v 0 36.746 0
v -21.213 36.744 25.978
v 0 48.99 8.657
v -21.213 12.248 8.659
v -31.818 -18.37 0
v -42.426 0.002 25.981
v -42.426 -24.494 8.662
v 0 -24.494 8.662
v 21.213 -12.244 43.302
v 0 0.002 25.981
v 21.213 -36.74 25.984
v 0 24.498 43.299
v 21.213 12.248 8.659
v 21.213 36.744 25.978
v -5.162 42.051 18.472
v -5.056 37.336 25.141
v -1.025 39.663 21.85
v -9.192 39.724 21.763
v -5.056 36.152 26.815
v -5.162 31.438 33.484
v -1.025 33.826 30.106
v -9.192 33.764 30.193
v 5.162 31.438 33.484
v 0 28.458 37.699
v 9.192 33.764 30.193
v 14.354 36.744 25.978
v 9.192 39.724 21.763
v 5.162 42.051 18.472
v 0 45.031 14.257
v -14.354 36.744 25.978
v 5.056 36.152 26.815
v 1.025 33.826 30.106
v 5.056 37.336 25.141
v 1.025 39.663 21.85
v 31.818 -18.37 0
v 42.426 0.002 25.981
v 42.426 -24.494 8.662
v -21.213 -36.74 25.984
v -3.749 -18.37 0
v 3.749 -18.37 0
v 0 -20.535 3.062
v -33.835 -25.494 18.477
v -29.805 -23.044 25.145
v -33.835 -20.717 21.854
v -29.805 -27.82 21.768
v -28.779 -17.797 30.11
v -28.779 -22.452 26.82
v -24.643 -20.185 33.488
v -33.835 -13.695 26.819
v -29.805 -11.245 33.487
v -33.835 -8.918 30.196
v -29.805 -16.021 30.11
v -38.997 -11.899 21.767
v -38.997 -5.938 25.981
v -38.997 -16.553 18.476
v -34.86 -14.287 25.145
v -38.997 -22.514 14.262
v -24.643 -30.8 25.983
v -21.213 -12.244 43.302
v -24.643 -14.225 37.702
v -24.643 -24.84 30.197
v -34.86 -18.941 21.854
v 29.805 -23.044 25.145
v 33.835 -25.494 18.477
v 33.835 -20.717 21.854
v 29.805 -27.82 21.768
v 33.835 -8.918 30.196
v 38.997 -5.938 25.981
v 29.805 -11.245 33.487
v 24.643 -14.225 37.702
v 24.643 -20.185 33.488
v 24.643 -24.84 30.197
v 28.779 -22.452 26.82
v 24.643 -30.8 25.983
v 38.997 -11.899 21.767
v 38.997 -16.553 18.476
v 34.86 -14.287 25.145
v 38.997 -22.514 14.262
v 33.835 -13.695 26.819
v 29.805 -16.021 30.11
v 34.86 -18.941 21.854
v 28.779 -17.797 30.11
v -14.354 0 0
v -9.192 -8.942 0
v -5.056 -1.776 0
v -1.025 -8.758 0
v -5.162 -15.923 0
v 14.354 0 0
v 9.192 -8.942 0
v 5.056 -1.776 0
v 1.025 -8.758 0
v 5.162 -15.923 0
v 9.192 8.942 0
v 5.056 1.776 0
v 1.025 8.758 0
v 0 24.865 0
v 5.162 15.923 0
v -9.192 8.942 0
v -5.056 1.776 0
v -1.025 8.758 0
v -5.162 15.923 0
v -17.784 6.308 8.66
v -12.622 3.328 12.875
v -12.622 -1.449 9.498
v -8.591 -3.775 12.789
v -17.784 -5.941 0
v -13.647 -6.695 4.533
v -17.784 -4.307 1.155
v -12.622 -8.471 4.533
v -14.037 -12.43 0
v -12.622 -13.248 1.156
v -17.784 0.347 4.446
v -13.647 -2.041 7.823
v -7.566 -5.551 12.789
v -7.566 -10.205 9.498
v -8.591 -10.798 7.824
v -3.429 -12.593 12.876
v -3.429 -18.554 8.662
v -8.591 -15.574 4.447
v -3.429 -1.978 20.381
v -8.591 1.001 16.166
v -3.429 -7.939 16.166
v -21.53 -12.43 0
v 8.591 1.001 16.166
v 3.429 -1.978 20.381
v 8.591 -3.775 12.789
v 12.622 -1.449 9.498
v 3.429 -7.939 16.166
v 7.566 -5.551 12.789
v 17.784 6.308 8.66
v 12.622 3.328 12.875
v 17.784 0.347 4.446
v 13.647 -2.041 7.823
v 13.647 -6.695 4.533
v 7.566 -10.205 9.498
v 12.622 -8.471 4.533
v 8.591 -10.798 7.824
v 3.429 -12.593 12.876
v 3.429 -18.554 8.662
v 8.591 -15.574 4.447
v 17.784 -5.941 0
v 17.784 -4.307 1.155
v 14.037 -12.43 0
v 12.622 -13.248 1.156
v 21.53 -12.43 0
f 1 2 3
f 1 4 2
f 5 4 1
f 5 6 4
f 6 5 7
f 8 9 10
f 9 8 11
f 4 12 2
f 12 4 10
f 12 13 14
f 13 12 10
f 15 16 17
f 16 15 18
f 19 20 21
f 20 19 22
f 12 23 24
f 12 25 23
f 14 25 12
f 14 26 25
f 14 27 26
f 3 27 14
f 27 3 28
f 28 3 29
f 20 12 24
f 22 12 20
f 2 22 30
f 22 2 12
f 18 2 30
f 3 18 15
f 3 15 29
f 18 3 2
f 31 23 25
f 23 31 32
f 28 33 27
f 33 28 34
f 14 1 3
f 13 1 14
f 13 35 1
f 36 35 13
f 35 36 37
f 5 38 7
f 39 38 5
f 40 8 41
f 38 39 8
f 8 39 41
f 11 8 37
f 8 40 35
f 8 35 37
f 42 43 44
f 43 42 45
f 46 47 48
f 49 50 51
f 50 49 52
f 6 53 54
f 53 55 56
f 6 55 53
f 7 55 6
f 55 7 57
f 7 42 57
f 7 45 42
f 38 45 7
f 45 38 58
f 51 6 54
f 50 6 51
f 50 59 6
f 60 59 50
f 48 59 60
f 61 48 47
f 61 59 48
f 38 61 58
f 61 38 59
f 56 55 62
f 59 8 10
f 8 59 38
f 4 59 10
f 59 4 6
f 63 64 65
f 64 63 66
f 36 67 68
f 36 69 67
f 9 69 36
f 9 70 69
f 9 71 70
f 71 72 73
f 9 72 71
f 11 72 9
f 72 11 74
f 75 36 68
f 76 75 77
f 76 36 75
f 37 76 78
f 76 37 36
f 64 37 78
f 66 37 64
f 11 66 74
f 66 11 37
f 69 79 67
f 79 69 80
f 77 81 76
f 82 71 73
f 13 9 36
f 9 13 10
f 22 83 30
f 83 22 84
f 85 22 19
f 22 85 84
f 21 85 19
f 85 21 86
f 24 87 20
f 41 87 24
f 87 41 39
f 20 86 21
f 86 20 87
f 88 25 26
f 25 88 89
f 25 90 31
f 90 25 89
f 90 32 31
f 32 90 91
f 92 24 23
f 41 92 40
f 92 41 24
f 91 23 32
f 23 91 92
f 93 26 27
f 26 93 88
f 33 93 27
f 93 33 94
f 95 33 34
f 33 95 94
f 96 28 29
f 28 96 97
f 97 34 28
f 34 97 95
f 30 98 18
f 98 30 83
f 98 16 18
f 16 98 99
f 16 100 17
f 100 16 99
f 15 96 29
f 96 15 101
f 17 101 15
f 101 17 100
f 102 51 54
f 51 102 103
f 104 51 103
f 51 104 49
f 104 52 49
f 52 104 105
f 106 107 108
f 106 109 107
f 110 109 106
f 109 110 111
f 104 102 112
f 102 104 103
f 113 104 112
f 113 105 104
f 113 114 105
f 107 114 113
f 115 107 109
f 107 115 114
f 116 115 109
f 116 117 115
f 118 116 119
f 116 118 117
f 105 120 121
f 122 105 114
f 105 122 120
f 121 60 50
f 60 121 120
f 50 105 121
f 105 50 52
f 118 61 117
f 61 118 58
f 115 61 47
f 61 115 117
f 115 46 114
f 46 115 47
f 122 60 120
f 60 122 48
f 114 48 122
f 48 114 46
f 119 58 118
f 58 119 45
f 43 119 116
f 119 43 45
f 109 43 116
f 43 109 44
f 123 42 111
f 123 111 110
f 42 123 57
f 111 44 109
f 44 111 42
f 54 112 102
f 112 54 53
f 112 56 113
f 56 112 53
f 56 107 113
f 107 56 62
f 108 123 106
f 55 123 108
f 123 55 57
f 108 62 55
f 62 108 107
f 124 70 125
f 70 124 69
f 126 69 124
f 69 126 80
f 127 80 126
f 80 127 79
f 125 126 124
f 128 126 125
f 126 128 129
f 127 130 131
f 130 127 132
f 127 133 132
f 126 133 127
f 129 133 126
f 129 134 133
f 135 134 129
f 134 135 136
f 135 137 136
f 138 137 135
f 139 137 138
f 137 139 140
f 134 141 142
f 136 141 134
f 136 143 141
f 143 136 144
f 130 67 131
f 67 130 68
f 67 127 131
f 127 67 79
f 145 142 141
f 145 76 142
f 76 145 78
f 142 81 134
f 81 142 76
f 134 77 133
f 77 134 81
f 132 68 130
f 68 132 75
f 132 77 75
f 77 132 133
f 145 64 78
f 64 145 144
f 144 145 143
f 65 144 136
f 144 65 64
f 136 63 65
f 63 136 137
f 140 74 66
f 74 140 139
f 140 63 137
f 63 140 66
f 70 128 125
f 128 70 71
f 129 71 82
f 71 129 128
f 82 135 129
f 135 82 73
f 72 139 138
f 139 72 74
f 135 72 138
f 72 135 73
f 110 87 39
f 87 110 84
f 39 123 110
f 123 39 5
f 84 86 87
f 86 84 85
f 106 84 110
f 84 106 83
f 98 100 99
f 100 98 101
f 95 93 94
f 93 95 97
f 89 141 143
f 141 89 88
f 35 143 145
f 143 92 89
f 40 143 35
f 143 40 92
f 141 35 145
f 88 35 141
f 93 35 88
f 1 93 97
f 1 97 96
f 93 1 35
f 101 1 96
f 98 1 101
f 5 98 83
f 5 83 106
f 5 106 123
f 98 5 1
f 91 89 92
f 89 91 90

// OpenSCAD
// Generated by SolidPython 1.1.3 on 2023-12-28 21:47:06


difference() {
	rotate(a = 35.2600000000, v = [1, 0, 0]) {
		rotate(a = -45, v = [0, 1, 0]) {
			difference() {
				union() {
					translate(v = [30.0000000000, 0, 0]) {
						cube(center = true, size = [30.0000000000, 30.0000000000, 30.0000000000]);
					}
					cube(center = true, size = [30.0000000000, 30.0000000000, 30.0000000000]);
					union() {
						translate(v = [0, 30.0000000000, 0]) {
							cube(center = true, size = [30.0000000000, 30.0000000000, 30.0000000000]);
						}
						cube(center = true, size = [30.0000000000, 30.0000000000, 30.0000000000]);
					}
					union() {
						translate(v = [0, 0, 30.0000000000]) {
							cube(center = true, size = [30.0000000000, 30.0000000000, 30.0000000000]);
						}
						cube(center = true, size = [30.0000000000, 30.0000000000, 30.0000000000]);
					}
				}
				union() {
					translate(v = [0, 0, 15]) {
						union() {
							polyhedron(convexity = 10, faces = [[0, 1, 5], [1, 6, 5], [1, 2, 6], [2, 7, 6], [2, 3, 7], [3, 8, 7], [3, 4, 8], [4, 9, 8], [4, 0, 9], [0, 5, 9], [4, 3, 2, 1, 0], [5, 6, 7, 8, 9]], points = [[-10.1500000000, 10.1500000000, 0.0000000000], [-10.1500000000, 2.8500000000, 0.0000000000], [-4.3000000000, 2.8500000000, 0.0000000000], [-4.3000000000, 0.0000000000, 0.0000000000], [0.0000000000, 0.0000000000, 0.0000000000], [-10.1500000000, 10.1500000000, 200.0000000000], [-10.1500000000, 2.8500000000, 200.0000000000], [-4.3000000000, 2.8500000000, 200.0000000000], [-4.3000000000, 0.0000000000, 200.0000000000], [0.0000000000, 0.0000000000, 200.0000000000]]);
							mirror(v = [0, 1]) {
								polyhedron(convexity = 10, faces = [[0, 1, 5], [1, 6, 5], [1, 2, 6], [2, 7, 6], [2, 3, 7], [3, 8, 7], [3, 4, 8], [4, 9, 8], [4, 0, 9], [0, 5, 9], [4, 3, 2, 1, 0], [5, 6, 7, 8, 9]], points = [[-10.1500000000, 10.1500000000, 0.0000000000], [-10.1500000000, 2.8500000000, 0.0000000000], [-4.3000000000, 2.8500000000, 0.0000000000], [-4.3000000000, 0.0000000000, 0.0000000000], [0.0000000000, 0.0000000000, 0.0000000000], [-10.1500000000, 10.1500000000, 200.0000000000], [-10.1500000000, 2.8500000000, 200.0000000000], [-4.3000000000, 2.8500000000, 200.0000000000], [-4.3000000000, 0.0000000000, 200.0000000000], [0.0000000000, 0.0000000000, 200.0000000000]]);
							}
							mirror(v = [1, 1]) {
								union() {
									polyhedron(convexity = 10, faces = [[0, 1, 5], [1, 6, 5], [1, 2, 6], [2, 7, 6], [2, 3, 7], [3, 8, 7], [3, 4, 8], [4, 9, 8], [4, 0, 9], [0, 5, 9], [4, 3, 2, 1, 0], [5, 6, 7, 8, 9]], points = [[-10.1500000000, 10.1500000000, 0.0000000000], [-10.1500000000, 2.8500000000, 0.0000000000], [-4.3000000000, 2.8500000000, 0.0000000000], [-4.3000000000, 0.0000000000, 0.0000000000], [0.0000000000, 0.0000000000, 0.0000000000], [-10.1500000000, 10.1500000000, 200.0000000000], [-10.1500000000, 2.8500000000, 200.0000000000], [-4.3000000000, 2.8500000000, 200.0000000000], [-4.3000000000, 0.0000000000, 200.0000000000], [0.0000000000, 0.0000000000, 200.0000000000]]);
									mirror(v = [0, 1]) {
										polyhedron(convexity = 10, faces = [[0, 1, 5], [1, 6, 5], [1, 2, 6], [2, 7, 6], [2, 3, 7], [3, 8, 7], [3, 4, 8], [4, 9, 8], [4, 0, 9], [0, 5, 9], [4, 3, 2, 1, 0], [5, 6, 7, 8, 9]], points = [[-10.1500000000, 10.1500000000, 0.0000000000], [-10.1500000000, 2.8500000000, 0.0000000000], [-4.3000000000, 2.8500000000, 0.0000000000], [-4.3000000000, 0.0000000000, 0.0000000000], [0.0000000000, 0.0000000000, 0.0000000000], [-10.1500000000, 10.1500000000, 200.0000000000], [-10.1500000000, 2.8500000000, 200.0000000000], [-4.3000000000, 2.8500000000, 200.0000000000], [-4.3000000000, 0.0000000000, 200.0000000000], [0.0000000000, 0.0000000000, 200.0000000000]]);
									}
								}
							}
							mirror(v = [1, -1]) {
								union() {
									polyhedron(convexity = 10, faces = [[0, 1, 5], [1, 6, 5], [1, 2, 6], [2, 7, 6], [2, 3, 7], [3, 8, 7], [3, 4, 8], [4, 9, 8], [4, 0, 9], [0, 5, 9], [4, 3, 2, 1, 0], [5, 6, 7, 8, 9]], points = [[-10.1500000000, 10.1500000000, 0.0000000000], [-10.1500000000, 2.8500000000, 0.0000000000], [-4.3000000000, 2.8500000000, 0.0000000000], [-4.3000000000, 0.0000000000, 0.0000000000], [0.0000000000, 0.0000000000, 0.0000000000], [-10.1500000000, 10.1500000000, 200.0000000000], [-10.1500000000, 2.8500000000, 200.0000000000], [-4.3000000000, 2.8500000000, 200.0000000000], [-4.3000000000, 0.0000000000, 200.0000000000], [0.0000000000, 0.0000000000, 200.0000000000]]);
									mirror(v = [0, 1]) {
										polyhedron(convexity = 10, faces = [[0, 1, 5], [1, 6, 5], [1, 2, 6], [2, 7, 6], [2, 3, 7], [3, 8, 7], [3, 4, 8], [4, 9, 8], [4, 0, 9], [0, 5, 9], [4, 3, 2, 1, 0], [5, 6, 7, 8, 9]], points = [[-10.1500000000, 10.1500000000, 0.0000000000], [-10.1500000000, 2.8500000000, 0.0000000000], [-4.3000000000, 2.8500000000, 0.0000000000], [-4.3000000000, 0.0000000000, 0.0000000000], [0.0000000000, 0.0000000000, 0.0000000000], [-10.1500000000, 10.1500000000, 200.0000000000], [-10.1500000000, 2.8500000000, 200.0000000000], [-4.3000000000, 2.8500000000, 200.0000000000], [-4.3000000000, 0.0000000000, 200.0000000000], [0.0000000000, 0.0000000000, 200.0000000000]]);
									}
									mirror(v = [1, 1]) {
										union() {
											polyhedron(convexity = 10, faces = [[0, 1, 5], [1, 6, 5], [1, 2, 6], [2, 7, 6], [2, 3, 7], [3, 8, 7], [3, 4, 8], [4, 9, 8], [4, 0, 9], [0, 5, 9], [4, 3, 2, 1, 0], [5, 6, 7, 8, 9]], points = [[-10.1500000000, 10.1500000000, 0.0000000000], [-10.1500000000, 2.8500000000, 0.0000000000], [-4.3000000000, 2.8500000000, 0.0000000000], [-4.3000000000, 0.0000000000, 0.0000000000], [0.0000000000, 0.0000000000, 0.0000000000], [-10.1500000000, 10.1500000000, 200.0000000000], [-10.1500000000, 2.8500000000, 200.0000000000], [-4.3000000000, 2.8500000000, 200.0000000000], [-4.3000000000, 0.0000000000, 200.0000000000], [0.0000000000, 0.0000000000, 200.0000000000]]);
											mirror(v = [0, 1]) {
												polyhedron(convexity = 10, faces = [[0, 1, 5], [1, 6, 5], [1, 2, 6], [2, 7, 6], [2, 3, 7], [3, 8, 7], [3, 4, 8], [4, 9, 8], [4, 0, 9], [0, 5, 9], [4, 3, 2, 1, 0], [5, 6, 7, 8, 9]], points = [[-10.1500000000, 10.1500000000, 0.0000000000], [-10.1500000000, 2.8500000000, 0.0000000000], [-4.3000000000, 2.8500000000, 0.0000000000], [-4.3000000000, 0.0000000000, 0.0000000000], [0.0000000000, 0.0000000000, 0.0000000000], [-10.1500000000, 10.1500000000, 200.0000000000], [-10.1500000000, 2.8500000000, 200.0000000000], [-4.3000000000, 2.8500000000, 200.0000000000], [-4.3000000000, 0.0000000000, 200.0000000000], [0.0000000000, 0.0000000000, 200.0000000000]]);
											}
										}
									}
								}
							}
						}
					}
					translate(v = [15, 0, 0]) {
						rotate(a = 90, v = [0, 1, 0]) {
							union() {
								polyhedron(convexity = 10, faces = [[0, 1, 5], [1, 6, 5], [1, 2, 6], [2, 7, 6], [2, 3, 7], [3, 8, 7], [3, 4, 8], [4, 9, 8], [4, 0, 9], [0, 5, 9], [4, 3, 2, 1, 0], [5, 6, 7, 8, 9]], points = [[-10.1500000000, 10.1500000000, 0.0000000000], [-10.1500000000, 2.8500000000, 0.0000000000], [-4.3000000000, 2.8500000000, 0.0000000000], [-4.3000000000, 0.0000000000, 0.0000000000], [0.0000000000, 0.0000000000, 0.0000000000], [-10.1500000000, 10.1500000000, 200.0000000000], [-10.1500000000, 2.8500000000, 200.0000000000], [-4.3000000000, 2.8500000000, 200.0000000000], [-4.3000000000, 0.0000000000, 200.0000000000], [0.0000000000, 0.0000000000, 200.0000000000]]);
								mirror(v = [0, 1]) {
									polyhedron(convexity = 10, faces = [[0, 1, 5], [1, 6, 5], [1, 2, 6], [2, 7, 6], [2, 3, 7], [3, 8, 7], [3, 4, 8], [4, 9, 8], [4, 0, 9], [0, 5, 9], [4, 3, 2, 1, 0], [5, 6, 7, 8, 9]], points = [[-10.1500000000, 10.1500000000, 0.0000000000], [-10.1500000000, 2.8500000000, 0.0000000000], [-4.3000000000, 2.8500000000, 0.0000000000], [-4.3000000000, 0.0000000000, 0.0000000000], [0.0000000000, 0.0000000000, 0.0000000000], [-10.1500000000, 10.1500000000, 200.0000000000], [-10.1500000000, 2.8500000000, 200.0000000000], [-4.3000000000, 2.8500000000, 200.0000000000], [-4.3000000000, 0.0000000000, 200.0000000000], [0.0000000000, 0.0000000000, 200.0000000000]]);
								}
								mirror(v = [1, 1]) {
									union() {
										polyhedron(convexity = 10, faces = [[0, 1, 5], [1, 6, 5], [1, 2, 6], [2, 7, 6], [2, 3, 7], [3, 8, 7], [3, 4, 8], [4, 9, 8], [4, 0, 9], [0, 5, 9], [4, 3, 2, 1, 0], [5, 6, 7, 8, 9]], points = [[-10.1500000000, 10.1500000000, 0.0000000000], [-10.1500000000, 2.8500000000, 0.0000000000], [-4.3000000000, 2.8500000000, 0.0000000000], [-4.3000000000, 0.0000000000, 0.0000000000], [0.0000000000, 0.0000000000, 0.0000000000], [-10.1500000000, 10.1500000000, 200.0000000000], [-10.1500000000, 2.8500000000, 200.0000000000], [-4.3000000000, 2.8500000000, 200.0000000000], [-4.3000000000, 0.0000000000, 200.0000000000], [0.0000000000, 0.0000000000, 200.0000000000]]);
										mirror(v = [0, 1]) {
											polyhedron(convexity = 10, faces = [[0, 1, 5], [1, 6, 5], [1, 2, 6], [2, 7, 6], [2, 3, 7], [3, 8, 7], [3, 4, 8], [4, 9, 8], [4, 0, 9], [0, 5, 9], [4, 3, 2, 1, 0], [5, 6, 7, 8, 9]], points = [[-10.1500000000, 10.1500000000, 0.0000000000], [-10.1500000000, 2.8500000000, 0.0000000000], [-4.3000000000, 2.8500000000, 0.0000000000], [-4.3000000000, 0.0000000000, 0.0000000000], [0.0000000000, 0.0000000000, 0.0000000000], [-10.1500000000, 10.1500000000, 200.0000000000], [-10.1500000000, 2.8500000000, 200.0000000000], [-4.3000000000, 2.8500000000, 200.0000000000], [-4.3000000000, 0.0000000000, 200.0000000000], [0.0000000000, 0.0000000000, 200.0000000000]]);
										}
									}
								}
								mirror(v = [1, -1]) {
									union() {
										polyhedron(convexity = 10, faces = [[0, 1, 5], [1, 6, 5], [1, 2, 6], [2, 7, 6], [2, 3, 7], [3, 8, 7], [3, 4, 8], [4, 9, 8], [4, 0, 9], [0, 5, 9], [4, 3, 2, 1, 0], [5, 6, 7, 8, 9]], points = [[-10.1500000000, 10.1500000000, 0.0000000000], [-10.1500000000, 2.8500000000, 0.0000000000], [-4.3000000000, 2.8500000000, 0.0000000000], [-4.3000000000, 0.0000000000, 0.0000000000], [0.0000000000, 0.0000000000, 0.0000000000], [-10.1500000000, 10.1500000000, 200.0000000000], [-10.1500000000, 2.8500000000, 200.0000000000], [-4.3000000000, 2.8500000000, 200.0000000000], [-4.3000000000, 0.0000000000, 200.0000000000], [0.0000000000, 0.0000000000, 200.0000000000]]);
										mirror(v = [0, 1]) {
											polyhedron(convexity = 10, faces = [[0, 1, 5], [1, 6, 5], [1, 2, 6], [2, 7, 6], [2, 3, 7], [3, 8, 7], [3, 4, 8], [4, 9, 8], [4, 0, 9], [0, 5, 9], [4, 3, 2, 1, 0], [5, 6, 7, 8, 9]], points = [[-10.1500000000, 10.1500000000, 0.0000000000], [-10.1500000000, 2.8500000000, 0.0000000000], [-4.3000000000, 2.8500000000, 0.0000000000], [-4.3000000000, 0.0000000000, 0.0000000000], [0.0000000000, 0.0000000000, 0.0000000000], [-10.1500000000, 10.1500000000, 200.0000000000], [-10.1500000000, 2.8500000000, 200.0000000000], [-4.3000000000, 2.8500000000, 200.0000000000], [-4.3000000000, 0.0000000000, 200.0000000000], [0.0000000000, 0.0000000000, 200.0000000000]]);
										}
										mirror(v = [1, 1]) {
											union() {
												polyhedron(convexity = 10, faces = [[0, 1, 5], [1, 6, 5], [1, 2, 6], [2, 7, 6], [2, 3, 7], [3, 8, 7], [3, 4, 8], [4, 9, 8], [4, 0, 9], [0, 5, 9], [4, 3, 2, 1, 0], [5, 6, 7, 8, 9]], points = [[-10.1500000000, 10.1500000000, 0.0000000000], [-10.1500000000, 2.8500000000, 0.0000000000], [-4.3000000000, 2.8500000000, 0.0000000000], [-4.3000000000, 0.0000000000, 0.0000000000], [0.0000000000, 0.0000000000, 0.0000000000], [-10.1500000000, 10.1500000000, 200.0000000000], [-10.1500000000, 2.8500000000, 200.0000000000], [-4.3000000000, 2.8500000000, 200.0000000000], [-4.3000000000, 0.0000000000, 200.0000000000], [0.0000000000, 0.0000000000, 200.0000000000]]);
												mirror(v = [0, 1]) {
													polyhedron(convexity = 10, faces = [[0, 1, 5], [1, 6, 5], [1, 2, 6], [2, 7, 6], [2, 3, 7], [3, 8, 7], [3, 4, 8], [4, 9, 8], [4, 0, 9], [0, 5, 9], [4, 3, 2, 1, 0], [5, 6, 7, 8, 9]], points = [[-10.1500000000, 10.1500000000, 0.0000000000], [-10.1500000000, 2.8500000000, 0.0000000000], [-4.3000000000, 2.8500000000, 0.0000000000], [-4.3000000000, 0.0000000000, 0.0000000000], [0.0000000000, 0.0000000000, 0.0000000000], [-10.1500000000, 10.1500000000, 200.0000000000], [-10.1500000000, 2.8500000000, 200.0000000000], [-4.3000000000, 2.8500000000, 200.0000000000], [-4.3000000000, 0.0000000000, 200.0000000000], [0.0000000000, 0.0000000000, 200.0000000000]]);
												}
											}
										}
									}
								}
							}
						}
					}
					translate(v = [0, 100.0000000000, 0]) {
						rotate(a = 90, v = [1, 0, 0]) {
							union() {
								polyhedron(convexity = 10, faces = [[0, 1, 5], [1, 6, 5], [1, 2, 6], [2, 7, 6], [2, 3, 7], [3, 8, 7], [3, 4, 8], [4, 9, 8], [4, 0, 9], [0, 5, 9], [4, 3, 2, 1, 0], [5, 6, 7, 8, 9]], points = [[-10.1500000000, 10.1500000000, 0.0000000000], [-10.1500000000, 2.8500000000, 0.0000000000], [-4.3000000000, 2.8500000000, 0.0000000000], [-4.3000000000, 0.0000000000, 0.0000000000], [0.0000000000, 0.0000000000, 0.0000000000], [-10.1500000000, 10.1500000000, 200.0000000000], [-10.1500000000, 2.8500000000, 200.0000000000], [-4.3000000000, 2.8500000000, 200.0000000000], [-4.3000000000, 0.0000000000, 200.0000000000], [0.0000000000, 0.0000000000, 200.0000000000]]);
								mirror(v = [0, 1]) {
									polyhedron(convexity = 10, faces = [[0, 1, 5], [1, 6, 5], [1, 2, 6], [2, 7, 6], [2, 3, 7], [3, 8, 7], [3, 4, 8], [4, 9, 8], [4, 0, 9], [0, 5, 9], [4, 3, 2, 1, 0], [5, 6, 7, 8, 9]], points = [[-10.1500000000, 10.1500000000, 0.0000000000], [-10.1500000000, 2.8500000000, 0.0000000000], [-4.3000000000, 2.8500000000, 0.0000000000], [-4.3000000000, 0.0000000000, 0.0000000000], [0.0000000000, 0.0000000000, 0.0000000000], [-10.1500000000, 10.1500000000, 200.0000000000], [-10.1500000000, 2.8500000000, 200.0000000000], [-4.3000000000, 2.8500000000, 200.0000000000], [-4.3000000000, 0.0000000000, 200.0000000000], [0.0000000000, 0.0000000000, 200.0000000000]]);
								}
								mirror(v = [1, 1]) {
									union() {
										polyhedron(convexity = 10, faces = [[0, 1, 5], [1, 6, 5], [1, 2, 6], [2, 7, 6], [2, 3, 7], [3, 8, 7], [3, 4, 8], [4, 9, 8], [4, 0, 9], [0, 5, 9], [4, 3, 2, 1, 0], [5, 6, 7, 8, 9]], points = [[-10.1500000000, 10.1500000000, 0.0000000000], [-10.1500000000, 2.8500000000, 0.0000000000], [-4.3000000000, 2.8500000000, 0.0000000000], [-4.3000000000, 0.0000000000, 0.0000000000], [0.0000000000, 0.0000000000, 0.0000000000], [-10.1500000000, 10.1500000000, 200.0000000000], [-10.1500000000, 2.8500000000, 200.0000000000], [-4.3000000000, 2.8500000000, 200.0000000000], [-4.3000000000, 0.0000000000, 200.0000000000], [0.0000000000, 0.0000000000, 200.0000000000]]);
										mirror(v = [0, 1]) {
											polyhedron(convexity = 10, faces = [[0, 1, 5], [1, 6, 5], [1, 2, 6], [2, 7, 6], [2, 3, 7], [3, 8, 7], [3, 4, 8], [4, 9, 8], [4, 0, 9], [0, 5, 9], [4, 3, 2, 1, 0], [5, 6, 7, 8, 9]], points = [[-10.1500000000, 10.1500000000, 0.0000000000], [-10.1500000000, 2.8500000000, 0.0000000000], [-4.3000000000, 2.8500000000, 0.0000000000], [-4.3000000000, 0.0000000000, 0.0000000000], [0.0000000000, 0.0000000000, 0.0000000000], [-10.1500000000, 10.1500000000, 200.0000000000], [-10.1500000000, 2.8500000000, 200.0000000000], [-4.3000000000, 2.8500000000, 200.0000000000], [-4.3000000000, 0.0000000000, 200.0000000000], [0.0000000000, 0.0000000000, 200.0000000000]]);
										}
									}
								}
								mirror(v = [1, -1]) {
									union() {
										polyhedron(convexity = 10, faces = [[0, 1, 5], [1, 6, 5], [1, 2, 6], [2, 7, 6], [2, 3, 7], [3, 8, 7], [3, 4, 8], [4, 9, 8], [4, 0, 9], [0, 5, 9], [4, 3, 2, 1, 0], [5, 6, 7, 8, 9]], points = [[-10.1500000000, 10.1500000000, 0.0000000000], [-10.1500000000, 2.8500000000, 0.0000000000], [-4.3000000000, 2.8500000000, 0.0000000000], [-4.3000000000, 0.0000000000, 0.0000000000], [0.0000000000, 0.0000000000, 0.0000000000], [-10.1500000000, 10.1500000000, 200.0000000000], [-10.1500000000, 2.8500000000, 200.0000000000], [-4.3000000000, 2.8500000000, 200.0000000000], [-4.3000000000, 0.0000000000, 200.0000000000], [0.0000000000, 0.0000000000, 200.0000000000]]);
										mirror(v = [0, 1]) {
											polyhedron(convexity = 10, faces = [[0, 1, 5], [1, 6, 5], [1, 2, 6], [2, 7, 6], [2, 3, 7], [3, 8, 7], [3, 4, 8], [4, 9, 8], [4, 0, 9], [0, 5, 9], [4, 3, 2, 1, 0], [5, 6, 7, 8, 9]], points = [[-10.1500000000, 10.1500000000, 0.0000000000], [-10.1500000000, 2.8500000000, 0.0000000000], [-4.3000000000, 2.8500000000, 0.0000000000], [-4.3000000000, 0.0000000000, 0.0000000000], [0.0000000000, 0.0000000000, 0.0000000000], [-10.1500000000, 10.1500000000, 200.0000000000], [-10.1500000000, 2.8500000000, 200.0000000000], [-4.3000000000, 2.8500000000, 200.0000000000], [-4.3000000000, 0.0000000000, 200.0000000000], [0.0000000000, 0.0000000000, 200.0000000000]]);
										}
										mirror(v = [1, 1]) {
											union() {
												polyhedron(convexity = 10, faces = [[0, 1, 5], [1, 6, 5], [1, 2, 6], [2, 7, 6], [2, 3, 7], [3, 8, 7], [3, 4, 8], [4, 9, 8], [4, 0, 9], [0, 5, 9], [4, 3, 2, 1, 0], [5, 6, 7, 8, 9]], points = [[-10.1500000000, 10.1500000000, 0.0000000000], [-10.1500000000, 2.8500000000, 0.0000000000], [-4.3000000000, 2.8500000000, 0.0000000000], [-4.3000000000, 0.0000000000, 0.0000000000], [0.0000000000, 0.0000000000, 0.0000000000], [-10.1500000000, 10.1500000000, 200.0000000000], [-10.1500000000, 2.8500000000, 200.0000000000], [-4.3000000000, 2.8500000000, 200.0000000000], [-4.3000000000, 0.0000000000, 200.0000000000], [0.0000000000, 0.0000000000, 200.0000000000]]);
												mirror(v = [0, 1]) {
													polyhedron(convexity = 10, faces = [[0, 1, 5], [1, 6, 5], [1, 2, 6], [2, 7, 6], [2, 3, 7], [3, 8, 7], [3, 4, 8], [4, 9, 8], [4, 0, 9], [0, 5, 9], [4, 3, 2, 1, 0], [5, 6, 7, 8, 9]], points = [[-10.1500000000, 10.1500000000, 0.0000000000], [-10.1500000000, 2.8500000000, 0.0000000000], [-4.3000000000, 2.8500000000, 0.0000000000], [-4.3000000000, 0.0000000000, 0.0000000000], [0.0000000000, 0.0000000000, 0.0000000000], [-10.1500000000, 10.1500000000, 200.0000000000], [-10.1500000000, 2.8500000000, 200.0000000000], [-4.3000000000, 2.8500000000, 200.0000000000], [-4.3000000000, 0.0000000000, 200.0000000000], [0.0000000000, 0.0000000000, 200.0000000000]]);
												}
											}
										}
									}
								}
							}
						}
					}
				}
			}
		}
	}
	translate(v = [0, 0, -150]) {
		cube(center = true, size = [300, 300, 300]);
	}
}
/***********************************************
*********      SolidPython code:      **********
************************************************
 
#! /usr/bin/env python3
from solid.objects import *
from solid.solidpython import *
import sys
from math import cos, radians, sin, pi, tau
from pathlib import Path

from euclid3 import Point2, Point3, Vector3

from solid import *
from solid.utils import *

from typing import Set, Sequence, List, Callable, Optional, Union, Iterable, Tuple

# ============
# = GEOMETRY =
# ============

tube_length = 200
shell_thickness = 5
e_thickness = 20

def e_profile() -> List[Point3]:
	profile_pts = []

	tolerance = .15;
	inner_corner = e_thickness/2 + tolerance;
	outer_corner = inner_corner + shell_thickness
	nub_length = 6 - tolerance;
	rail_thickness = .5;
	gap_size = 3 - tolerance;

	# outer shell
	# profile_pts = [[inner_corner,inner_corner,0],[inner_corner,gap_size,0],
    #                  [inner_corner - nub_length, gap_size,0],[inner_corner - nub_length, 0,0],
    #                  [outer_corner,0,0],[outer_corner,outer_corner,0]]

	profile_pts = [[inner_corner,inner_corner,0],[inner_corner,gap_size,0],[inner_corner - nub_length, gap_size,0],
					[inner_corner - nub_length,0,0],[0,0,0]]

	return profile_pts

def extrude_and_mirror_profile() -> OpenSCADObject:
	path = [[0,0,0],[0,0,tube_length]]
	shape = e_profile()
	extruded = extrude_along_path( shape_pts=shape, path_pts=path)
	extruded += mirror(v=(0,1))(extruded)
	extruded += mirror(v=(1,1))(extruded)
	extruded += mirror(v=(1,-1))(extruded)
	return extruded

def make_three_e(extrusion_profile) -> OpenSCADObject:
	three_extrusions = translate([0,0,10+shell_thickness])(extrusion_profile)
	three_extrusions += translate([10+shell_thickness,0,0])(rotate(a=90, v=FORWARD_VEC)(extrusion_profile))
	three_extrusions += translate(([0,tube_length/2,0]))(rotate(a=90, v=RIGHT_VEC)(extrusion_profile))
	return three_extrusions

def make_shell() -> OpenSCADObject:
	total = (e_thickness/2 + shell_thickness)*2
	base_cube = cube([total, total, total], center=True)
	cube_shell = translate([total,0,0])(base_cube) + base_cube
	cube_shell += translate([0,total,0])(base_cube) + base_cube
	cube_shell += translate([0,0,total])(base_cube) + base_cube	
	return cube_shell

def bisect_floor(input) -> OpenSCADObject:
	size = 300
	floor = translate([0,0,-150])(cube([300,300,300],center = True))
	return input - floor
# ===============
# = ENTRY POINT =
# ===============
if __name__ == "__main__":
	out_dir = sys.argv[1] if len(sys.argv) > 1 else Path(__file__).parent

	extrusion_profile = extrude_and_mirror_profile()
	shell = make_shell()
	a = (shell - make_three_e(extrusion_profile()))
	a = rotate(a = -45, v=(0,1,0))(a)
	a = rotate(a = 35.26, v=(1,0,0))(a)
	a = bisect_floor(a)
	file_out = scad_render_to_file(a,  out_dir=out_dir, include_orig_code=True)
	print(f"{__file__}: SCAD file written to: \n{file_out}")
 
 
************************************************/
